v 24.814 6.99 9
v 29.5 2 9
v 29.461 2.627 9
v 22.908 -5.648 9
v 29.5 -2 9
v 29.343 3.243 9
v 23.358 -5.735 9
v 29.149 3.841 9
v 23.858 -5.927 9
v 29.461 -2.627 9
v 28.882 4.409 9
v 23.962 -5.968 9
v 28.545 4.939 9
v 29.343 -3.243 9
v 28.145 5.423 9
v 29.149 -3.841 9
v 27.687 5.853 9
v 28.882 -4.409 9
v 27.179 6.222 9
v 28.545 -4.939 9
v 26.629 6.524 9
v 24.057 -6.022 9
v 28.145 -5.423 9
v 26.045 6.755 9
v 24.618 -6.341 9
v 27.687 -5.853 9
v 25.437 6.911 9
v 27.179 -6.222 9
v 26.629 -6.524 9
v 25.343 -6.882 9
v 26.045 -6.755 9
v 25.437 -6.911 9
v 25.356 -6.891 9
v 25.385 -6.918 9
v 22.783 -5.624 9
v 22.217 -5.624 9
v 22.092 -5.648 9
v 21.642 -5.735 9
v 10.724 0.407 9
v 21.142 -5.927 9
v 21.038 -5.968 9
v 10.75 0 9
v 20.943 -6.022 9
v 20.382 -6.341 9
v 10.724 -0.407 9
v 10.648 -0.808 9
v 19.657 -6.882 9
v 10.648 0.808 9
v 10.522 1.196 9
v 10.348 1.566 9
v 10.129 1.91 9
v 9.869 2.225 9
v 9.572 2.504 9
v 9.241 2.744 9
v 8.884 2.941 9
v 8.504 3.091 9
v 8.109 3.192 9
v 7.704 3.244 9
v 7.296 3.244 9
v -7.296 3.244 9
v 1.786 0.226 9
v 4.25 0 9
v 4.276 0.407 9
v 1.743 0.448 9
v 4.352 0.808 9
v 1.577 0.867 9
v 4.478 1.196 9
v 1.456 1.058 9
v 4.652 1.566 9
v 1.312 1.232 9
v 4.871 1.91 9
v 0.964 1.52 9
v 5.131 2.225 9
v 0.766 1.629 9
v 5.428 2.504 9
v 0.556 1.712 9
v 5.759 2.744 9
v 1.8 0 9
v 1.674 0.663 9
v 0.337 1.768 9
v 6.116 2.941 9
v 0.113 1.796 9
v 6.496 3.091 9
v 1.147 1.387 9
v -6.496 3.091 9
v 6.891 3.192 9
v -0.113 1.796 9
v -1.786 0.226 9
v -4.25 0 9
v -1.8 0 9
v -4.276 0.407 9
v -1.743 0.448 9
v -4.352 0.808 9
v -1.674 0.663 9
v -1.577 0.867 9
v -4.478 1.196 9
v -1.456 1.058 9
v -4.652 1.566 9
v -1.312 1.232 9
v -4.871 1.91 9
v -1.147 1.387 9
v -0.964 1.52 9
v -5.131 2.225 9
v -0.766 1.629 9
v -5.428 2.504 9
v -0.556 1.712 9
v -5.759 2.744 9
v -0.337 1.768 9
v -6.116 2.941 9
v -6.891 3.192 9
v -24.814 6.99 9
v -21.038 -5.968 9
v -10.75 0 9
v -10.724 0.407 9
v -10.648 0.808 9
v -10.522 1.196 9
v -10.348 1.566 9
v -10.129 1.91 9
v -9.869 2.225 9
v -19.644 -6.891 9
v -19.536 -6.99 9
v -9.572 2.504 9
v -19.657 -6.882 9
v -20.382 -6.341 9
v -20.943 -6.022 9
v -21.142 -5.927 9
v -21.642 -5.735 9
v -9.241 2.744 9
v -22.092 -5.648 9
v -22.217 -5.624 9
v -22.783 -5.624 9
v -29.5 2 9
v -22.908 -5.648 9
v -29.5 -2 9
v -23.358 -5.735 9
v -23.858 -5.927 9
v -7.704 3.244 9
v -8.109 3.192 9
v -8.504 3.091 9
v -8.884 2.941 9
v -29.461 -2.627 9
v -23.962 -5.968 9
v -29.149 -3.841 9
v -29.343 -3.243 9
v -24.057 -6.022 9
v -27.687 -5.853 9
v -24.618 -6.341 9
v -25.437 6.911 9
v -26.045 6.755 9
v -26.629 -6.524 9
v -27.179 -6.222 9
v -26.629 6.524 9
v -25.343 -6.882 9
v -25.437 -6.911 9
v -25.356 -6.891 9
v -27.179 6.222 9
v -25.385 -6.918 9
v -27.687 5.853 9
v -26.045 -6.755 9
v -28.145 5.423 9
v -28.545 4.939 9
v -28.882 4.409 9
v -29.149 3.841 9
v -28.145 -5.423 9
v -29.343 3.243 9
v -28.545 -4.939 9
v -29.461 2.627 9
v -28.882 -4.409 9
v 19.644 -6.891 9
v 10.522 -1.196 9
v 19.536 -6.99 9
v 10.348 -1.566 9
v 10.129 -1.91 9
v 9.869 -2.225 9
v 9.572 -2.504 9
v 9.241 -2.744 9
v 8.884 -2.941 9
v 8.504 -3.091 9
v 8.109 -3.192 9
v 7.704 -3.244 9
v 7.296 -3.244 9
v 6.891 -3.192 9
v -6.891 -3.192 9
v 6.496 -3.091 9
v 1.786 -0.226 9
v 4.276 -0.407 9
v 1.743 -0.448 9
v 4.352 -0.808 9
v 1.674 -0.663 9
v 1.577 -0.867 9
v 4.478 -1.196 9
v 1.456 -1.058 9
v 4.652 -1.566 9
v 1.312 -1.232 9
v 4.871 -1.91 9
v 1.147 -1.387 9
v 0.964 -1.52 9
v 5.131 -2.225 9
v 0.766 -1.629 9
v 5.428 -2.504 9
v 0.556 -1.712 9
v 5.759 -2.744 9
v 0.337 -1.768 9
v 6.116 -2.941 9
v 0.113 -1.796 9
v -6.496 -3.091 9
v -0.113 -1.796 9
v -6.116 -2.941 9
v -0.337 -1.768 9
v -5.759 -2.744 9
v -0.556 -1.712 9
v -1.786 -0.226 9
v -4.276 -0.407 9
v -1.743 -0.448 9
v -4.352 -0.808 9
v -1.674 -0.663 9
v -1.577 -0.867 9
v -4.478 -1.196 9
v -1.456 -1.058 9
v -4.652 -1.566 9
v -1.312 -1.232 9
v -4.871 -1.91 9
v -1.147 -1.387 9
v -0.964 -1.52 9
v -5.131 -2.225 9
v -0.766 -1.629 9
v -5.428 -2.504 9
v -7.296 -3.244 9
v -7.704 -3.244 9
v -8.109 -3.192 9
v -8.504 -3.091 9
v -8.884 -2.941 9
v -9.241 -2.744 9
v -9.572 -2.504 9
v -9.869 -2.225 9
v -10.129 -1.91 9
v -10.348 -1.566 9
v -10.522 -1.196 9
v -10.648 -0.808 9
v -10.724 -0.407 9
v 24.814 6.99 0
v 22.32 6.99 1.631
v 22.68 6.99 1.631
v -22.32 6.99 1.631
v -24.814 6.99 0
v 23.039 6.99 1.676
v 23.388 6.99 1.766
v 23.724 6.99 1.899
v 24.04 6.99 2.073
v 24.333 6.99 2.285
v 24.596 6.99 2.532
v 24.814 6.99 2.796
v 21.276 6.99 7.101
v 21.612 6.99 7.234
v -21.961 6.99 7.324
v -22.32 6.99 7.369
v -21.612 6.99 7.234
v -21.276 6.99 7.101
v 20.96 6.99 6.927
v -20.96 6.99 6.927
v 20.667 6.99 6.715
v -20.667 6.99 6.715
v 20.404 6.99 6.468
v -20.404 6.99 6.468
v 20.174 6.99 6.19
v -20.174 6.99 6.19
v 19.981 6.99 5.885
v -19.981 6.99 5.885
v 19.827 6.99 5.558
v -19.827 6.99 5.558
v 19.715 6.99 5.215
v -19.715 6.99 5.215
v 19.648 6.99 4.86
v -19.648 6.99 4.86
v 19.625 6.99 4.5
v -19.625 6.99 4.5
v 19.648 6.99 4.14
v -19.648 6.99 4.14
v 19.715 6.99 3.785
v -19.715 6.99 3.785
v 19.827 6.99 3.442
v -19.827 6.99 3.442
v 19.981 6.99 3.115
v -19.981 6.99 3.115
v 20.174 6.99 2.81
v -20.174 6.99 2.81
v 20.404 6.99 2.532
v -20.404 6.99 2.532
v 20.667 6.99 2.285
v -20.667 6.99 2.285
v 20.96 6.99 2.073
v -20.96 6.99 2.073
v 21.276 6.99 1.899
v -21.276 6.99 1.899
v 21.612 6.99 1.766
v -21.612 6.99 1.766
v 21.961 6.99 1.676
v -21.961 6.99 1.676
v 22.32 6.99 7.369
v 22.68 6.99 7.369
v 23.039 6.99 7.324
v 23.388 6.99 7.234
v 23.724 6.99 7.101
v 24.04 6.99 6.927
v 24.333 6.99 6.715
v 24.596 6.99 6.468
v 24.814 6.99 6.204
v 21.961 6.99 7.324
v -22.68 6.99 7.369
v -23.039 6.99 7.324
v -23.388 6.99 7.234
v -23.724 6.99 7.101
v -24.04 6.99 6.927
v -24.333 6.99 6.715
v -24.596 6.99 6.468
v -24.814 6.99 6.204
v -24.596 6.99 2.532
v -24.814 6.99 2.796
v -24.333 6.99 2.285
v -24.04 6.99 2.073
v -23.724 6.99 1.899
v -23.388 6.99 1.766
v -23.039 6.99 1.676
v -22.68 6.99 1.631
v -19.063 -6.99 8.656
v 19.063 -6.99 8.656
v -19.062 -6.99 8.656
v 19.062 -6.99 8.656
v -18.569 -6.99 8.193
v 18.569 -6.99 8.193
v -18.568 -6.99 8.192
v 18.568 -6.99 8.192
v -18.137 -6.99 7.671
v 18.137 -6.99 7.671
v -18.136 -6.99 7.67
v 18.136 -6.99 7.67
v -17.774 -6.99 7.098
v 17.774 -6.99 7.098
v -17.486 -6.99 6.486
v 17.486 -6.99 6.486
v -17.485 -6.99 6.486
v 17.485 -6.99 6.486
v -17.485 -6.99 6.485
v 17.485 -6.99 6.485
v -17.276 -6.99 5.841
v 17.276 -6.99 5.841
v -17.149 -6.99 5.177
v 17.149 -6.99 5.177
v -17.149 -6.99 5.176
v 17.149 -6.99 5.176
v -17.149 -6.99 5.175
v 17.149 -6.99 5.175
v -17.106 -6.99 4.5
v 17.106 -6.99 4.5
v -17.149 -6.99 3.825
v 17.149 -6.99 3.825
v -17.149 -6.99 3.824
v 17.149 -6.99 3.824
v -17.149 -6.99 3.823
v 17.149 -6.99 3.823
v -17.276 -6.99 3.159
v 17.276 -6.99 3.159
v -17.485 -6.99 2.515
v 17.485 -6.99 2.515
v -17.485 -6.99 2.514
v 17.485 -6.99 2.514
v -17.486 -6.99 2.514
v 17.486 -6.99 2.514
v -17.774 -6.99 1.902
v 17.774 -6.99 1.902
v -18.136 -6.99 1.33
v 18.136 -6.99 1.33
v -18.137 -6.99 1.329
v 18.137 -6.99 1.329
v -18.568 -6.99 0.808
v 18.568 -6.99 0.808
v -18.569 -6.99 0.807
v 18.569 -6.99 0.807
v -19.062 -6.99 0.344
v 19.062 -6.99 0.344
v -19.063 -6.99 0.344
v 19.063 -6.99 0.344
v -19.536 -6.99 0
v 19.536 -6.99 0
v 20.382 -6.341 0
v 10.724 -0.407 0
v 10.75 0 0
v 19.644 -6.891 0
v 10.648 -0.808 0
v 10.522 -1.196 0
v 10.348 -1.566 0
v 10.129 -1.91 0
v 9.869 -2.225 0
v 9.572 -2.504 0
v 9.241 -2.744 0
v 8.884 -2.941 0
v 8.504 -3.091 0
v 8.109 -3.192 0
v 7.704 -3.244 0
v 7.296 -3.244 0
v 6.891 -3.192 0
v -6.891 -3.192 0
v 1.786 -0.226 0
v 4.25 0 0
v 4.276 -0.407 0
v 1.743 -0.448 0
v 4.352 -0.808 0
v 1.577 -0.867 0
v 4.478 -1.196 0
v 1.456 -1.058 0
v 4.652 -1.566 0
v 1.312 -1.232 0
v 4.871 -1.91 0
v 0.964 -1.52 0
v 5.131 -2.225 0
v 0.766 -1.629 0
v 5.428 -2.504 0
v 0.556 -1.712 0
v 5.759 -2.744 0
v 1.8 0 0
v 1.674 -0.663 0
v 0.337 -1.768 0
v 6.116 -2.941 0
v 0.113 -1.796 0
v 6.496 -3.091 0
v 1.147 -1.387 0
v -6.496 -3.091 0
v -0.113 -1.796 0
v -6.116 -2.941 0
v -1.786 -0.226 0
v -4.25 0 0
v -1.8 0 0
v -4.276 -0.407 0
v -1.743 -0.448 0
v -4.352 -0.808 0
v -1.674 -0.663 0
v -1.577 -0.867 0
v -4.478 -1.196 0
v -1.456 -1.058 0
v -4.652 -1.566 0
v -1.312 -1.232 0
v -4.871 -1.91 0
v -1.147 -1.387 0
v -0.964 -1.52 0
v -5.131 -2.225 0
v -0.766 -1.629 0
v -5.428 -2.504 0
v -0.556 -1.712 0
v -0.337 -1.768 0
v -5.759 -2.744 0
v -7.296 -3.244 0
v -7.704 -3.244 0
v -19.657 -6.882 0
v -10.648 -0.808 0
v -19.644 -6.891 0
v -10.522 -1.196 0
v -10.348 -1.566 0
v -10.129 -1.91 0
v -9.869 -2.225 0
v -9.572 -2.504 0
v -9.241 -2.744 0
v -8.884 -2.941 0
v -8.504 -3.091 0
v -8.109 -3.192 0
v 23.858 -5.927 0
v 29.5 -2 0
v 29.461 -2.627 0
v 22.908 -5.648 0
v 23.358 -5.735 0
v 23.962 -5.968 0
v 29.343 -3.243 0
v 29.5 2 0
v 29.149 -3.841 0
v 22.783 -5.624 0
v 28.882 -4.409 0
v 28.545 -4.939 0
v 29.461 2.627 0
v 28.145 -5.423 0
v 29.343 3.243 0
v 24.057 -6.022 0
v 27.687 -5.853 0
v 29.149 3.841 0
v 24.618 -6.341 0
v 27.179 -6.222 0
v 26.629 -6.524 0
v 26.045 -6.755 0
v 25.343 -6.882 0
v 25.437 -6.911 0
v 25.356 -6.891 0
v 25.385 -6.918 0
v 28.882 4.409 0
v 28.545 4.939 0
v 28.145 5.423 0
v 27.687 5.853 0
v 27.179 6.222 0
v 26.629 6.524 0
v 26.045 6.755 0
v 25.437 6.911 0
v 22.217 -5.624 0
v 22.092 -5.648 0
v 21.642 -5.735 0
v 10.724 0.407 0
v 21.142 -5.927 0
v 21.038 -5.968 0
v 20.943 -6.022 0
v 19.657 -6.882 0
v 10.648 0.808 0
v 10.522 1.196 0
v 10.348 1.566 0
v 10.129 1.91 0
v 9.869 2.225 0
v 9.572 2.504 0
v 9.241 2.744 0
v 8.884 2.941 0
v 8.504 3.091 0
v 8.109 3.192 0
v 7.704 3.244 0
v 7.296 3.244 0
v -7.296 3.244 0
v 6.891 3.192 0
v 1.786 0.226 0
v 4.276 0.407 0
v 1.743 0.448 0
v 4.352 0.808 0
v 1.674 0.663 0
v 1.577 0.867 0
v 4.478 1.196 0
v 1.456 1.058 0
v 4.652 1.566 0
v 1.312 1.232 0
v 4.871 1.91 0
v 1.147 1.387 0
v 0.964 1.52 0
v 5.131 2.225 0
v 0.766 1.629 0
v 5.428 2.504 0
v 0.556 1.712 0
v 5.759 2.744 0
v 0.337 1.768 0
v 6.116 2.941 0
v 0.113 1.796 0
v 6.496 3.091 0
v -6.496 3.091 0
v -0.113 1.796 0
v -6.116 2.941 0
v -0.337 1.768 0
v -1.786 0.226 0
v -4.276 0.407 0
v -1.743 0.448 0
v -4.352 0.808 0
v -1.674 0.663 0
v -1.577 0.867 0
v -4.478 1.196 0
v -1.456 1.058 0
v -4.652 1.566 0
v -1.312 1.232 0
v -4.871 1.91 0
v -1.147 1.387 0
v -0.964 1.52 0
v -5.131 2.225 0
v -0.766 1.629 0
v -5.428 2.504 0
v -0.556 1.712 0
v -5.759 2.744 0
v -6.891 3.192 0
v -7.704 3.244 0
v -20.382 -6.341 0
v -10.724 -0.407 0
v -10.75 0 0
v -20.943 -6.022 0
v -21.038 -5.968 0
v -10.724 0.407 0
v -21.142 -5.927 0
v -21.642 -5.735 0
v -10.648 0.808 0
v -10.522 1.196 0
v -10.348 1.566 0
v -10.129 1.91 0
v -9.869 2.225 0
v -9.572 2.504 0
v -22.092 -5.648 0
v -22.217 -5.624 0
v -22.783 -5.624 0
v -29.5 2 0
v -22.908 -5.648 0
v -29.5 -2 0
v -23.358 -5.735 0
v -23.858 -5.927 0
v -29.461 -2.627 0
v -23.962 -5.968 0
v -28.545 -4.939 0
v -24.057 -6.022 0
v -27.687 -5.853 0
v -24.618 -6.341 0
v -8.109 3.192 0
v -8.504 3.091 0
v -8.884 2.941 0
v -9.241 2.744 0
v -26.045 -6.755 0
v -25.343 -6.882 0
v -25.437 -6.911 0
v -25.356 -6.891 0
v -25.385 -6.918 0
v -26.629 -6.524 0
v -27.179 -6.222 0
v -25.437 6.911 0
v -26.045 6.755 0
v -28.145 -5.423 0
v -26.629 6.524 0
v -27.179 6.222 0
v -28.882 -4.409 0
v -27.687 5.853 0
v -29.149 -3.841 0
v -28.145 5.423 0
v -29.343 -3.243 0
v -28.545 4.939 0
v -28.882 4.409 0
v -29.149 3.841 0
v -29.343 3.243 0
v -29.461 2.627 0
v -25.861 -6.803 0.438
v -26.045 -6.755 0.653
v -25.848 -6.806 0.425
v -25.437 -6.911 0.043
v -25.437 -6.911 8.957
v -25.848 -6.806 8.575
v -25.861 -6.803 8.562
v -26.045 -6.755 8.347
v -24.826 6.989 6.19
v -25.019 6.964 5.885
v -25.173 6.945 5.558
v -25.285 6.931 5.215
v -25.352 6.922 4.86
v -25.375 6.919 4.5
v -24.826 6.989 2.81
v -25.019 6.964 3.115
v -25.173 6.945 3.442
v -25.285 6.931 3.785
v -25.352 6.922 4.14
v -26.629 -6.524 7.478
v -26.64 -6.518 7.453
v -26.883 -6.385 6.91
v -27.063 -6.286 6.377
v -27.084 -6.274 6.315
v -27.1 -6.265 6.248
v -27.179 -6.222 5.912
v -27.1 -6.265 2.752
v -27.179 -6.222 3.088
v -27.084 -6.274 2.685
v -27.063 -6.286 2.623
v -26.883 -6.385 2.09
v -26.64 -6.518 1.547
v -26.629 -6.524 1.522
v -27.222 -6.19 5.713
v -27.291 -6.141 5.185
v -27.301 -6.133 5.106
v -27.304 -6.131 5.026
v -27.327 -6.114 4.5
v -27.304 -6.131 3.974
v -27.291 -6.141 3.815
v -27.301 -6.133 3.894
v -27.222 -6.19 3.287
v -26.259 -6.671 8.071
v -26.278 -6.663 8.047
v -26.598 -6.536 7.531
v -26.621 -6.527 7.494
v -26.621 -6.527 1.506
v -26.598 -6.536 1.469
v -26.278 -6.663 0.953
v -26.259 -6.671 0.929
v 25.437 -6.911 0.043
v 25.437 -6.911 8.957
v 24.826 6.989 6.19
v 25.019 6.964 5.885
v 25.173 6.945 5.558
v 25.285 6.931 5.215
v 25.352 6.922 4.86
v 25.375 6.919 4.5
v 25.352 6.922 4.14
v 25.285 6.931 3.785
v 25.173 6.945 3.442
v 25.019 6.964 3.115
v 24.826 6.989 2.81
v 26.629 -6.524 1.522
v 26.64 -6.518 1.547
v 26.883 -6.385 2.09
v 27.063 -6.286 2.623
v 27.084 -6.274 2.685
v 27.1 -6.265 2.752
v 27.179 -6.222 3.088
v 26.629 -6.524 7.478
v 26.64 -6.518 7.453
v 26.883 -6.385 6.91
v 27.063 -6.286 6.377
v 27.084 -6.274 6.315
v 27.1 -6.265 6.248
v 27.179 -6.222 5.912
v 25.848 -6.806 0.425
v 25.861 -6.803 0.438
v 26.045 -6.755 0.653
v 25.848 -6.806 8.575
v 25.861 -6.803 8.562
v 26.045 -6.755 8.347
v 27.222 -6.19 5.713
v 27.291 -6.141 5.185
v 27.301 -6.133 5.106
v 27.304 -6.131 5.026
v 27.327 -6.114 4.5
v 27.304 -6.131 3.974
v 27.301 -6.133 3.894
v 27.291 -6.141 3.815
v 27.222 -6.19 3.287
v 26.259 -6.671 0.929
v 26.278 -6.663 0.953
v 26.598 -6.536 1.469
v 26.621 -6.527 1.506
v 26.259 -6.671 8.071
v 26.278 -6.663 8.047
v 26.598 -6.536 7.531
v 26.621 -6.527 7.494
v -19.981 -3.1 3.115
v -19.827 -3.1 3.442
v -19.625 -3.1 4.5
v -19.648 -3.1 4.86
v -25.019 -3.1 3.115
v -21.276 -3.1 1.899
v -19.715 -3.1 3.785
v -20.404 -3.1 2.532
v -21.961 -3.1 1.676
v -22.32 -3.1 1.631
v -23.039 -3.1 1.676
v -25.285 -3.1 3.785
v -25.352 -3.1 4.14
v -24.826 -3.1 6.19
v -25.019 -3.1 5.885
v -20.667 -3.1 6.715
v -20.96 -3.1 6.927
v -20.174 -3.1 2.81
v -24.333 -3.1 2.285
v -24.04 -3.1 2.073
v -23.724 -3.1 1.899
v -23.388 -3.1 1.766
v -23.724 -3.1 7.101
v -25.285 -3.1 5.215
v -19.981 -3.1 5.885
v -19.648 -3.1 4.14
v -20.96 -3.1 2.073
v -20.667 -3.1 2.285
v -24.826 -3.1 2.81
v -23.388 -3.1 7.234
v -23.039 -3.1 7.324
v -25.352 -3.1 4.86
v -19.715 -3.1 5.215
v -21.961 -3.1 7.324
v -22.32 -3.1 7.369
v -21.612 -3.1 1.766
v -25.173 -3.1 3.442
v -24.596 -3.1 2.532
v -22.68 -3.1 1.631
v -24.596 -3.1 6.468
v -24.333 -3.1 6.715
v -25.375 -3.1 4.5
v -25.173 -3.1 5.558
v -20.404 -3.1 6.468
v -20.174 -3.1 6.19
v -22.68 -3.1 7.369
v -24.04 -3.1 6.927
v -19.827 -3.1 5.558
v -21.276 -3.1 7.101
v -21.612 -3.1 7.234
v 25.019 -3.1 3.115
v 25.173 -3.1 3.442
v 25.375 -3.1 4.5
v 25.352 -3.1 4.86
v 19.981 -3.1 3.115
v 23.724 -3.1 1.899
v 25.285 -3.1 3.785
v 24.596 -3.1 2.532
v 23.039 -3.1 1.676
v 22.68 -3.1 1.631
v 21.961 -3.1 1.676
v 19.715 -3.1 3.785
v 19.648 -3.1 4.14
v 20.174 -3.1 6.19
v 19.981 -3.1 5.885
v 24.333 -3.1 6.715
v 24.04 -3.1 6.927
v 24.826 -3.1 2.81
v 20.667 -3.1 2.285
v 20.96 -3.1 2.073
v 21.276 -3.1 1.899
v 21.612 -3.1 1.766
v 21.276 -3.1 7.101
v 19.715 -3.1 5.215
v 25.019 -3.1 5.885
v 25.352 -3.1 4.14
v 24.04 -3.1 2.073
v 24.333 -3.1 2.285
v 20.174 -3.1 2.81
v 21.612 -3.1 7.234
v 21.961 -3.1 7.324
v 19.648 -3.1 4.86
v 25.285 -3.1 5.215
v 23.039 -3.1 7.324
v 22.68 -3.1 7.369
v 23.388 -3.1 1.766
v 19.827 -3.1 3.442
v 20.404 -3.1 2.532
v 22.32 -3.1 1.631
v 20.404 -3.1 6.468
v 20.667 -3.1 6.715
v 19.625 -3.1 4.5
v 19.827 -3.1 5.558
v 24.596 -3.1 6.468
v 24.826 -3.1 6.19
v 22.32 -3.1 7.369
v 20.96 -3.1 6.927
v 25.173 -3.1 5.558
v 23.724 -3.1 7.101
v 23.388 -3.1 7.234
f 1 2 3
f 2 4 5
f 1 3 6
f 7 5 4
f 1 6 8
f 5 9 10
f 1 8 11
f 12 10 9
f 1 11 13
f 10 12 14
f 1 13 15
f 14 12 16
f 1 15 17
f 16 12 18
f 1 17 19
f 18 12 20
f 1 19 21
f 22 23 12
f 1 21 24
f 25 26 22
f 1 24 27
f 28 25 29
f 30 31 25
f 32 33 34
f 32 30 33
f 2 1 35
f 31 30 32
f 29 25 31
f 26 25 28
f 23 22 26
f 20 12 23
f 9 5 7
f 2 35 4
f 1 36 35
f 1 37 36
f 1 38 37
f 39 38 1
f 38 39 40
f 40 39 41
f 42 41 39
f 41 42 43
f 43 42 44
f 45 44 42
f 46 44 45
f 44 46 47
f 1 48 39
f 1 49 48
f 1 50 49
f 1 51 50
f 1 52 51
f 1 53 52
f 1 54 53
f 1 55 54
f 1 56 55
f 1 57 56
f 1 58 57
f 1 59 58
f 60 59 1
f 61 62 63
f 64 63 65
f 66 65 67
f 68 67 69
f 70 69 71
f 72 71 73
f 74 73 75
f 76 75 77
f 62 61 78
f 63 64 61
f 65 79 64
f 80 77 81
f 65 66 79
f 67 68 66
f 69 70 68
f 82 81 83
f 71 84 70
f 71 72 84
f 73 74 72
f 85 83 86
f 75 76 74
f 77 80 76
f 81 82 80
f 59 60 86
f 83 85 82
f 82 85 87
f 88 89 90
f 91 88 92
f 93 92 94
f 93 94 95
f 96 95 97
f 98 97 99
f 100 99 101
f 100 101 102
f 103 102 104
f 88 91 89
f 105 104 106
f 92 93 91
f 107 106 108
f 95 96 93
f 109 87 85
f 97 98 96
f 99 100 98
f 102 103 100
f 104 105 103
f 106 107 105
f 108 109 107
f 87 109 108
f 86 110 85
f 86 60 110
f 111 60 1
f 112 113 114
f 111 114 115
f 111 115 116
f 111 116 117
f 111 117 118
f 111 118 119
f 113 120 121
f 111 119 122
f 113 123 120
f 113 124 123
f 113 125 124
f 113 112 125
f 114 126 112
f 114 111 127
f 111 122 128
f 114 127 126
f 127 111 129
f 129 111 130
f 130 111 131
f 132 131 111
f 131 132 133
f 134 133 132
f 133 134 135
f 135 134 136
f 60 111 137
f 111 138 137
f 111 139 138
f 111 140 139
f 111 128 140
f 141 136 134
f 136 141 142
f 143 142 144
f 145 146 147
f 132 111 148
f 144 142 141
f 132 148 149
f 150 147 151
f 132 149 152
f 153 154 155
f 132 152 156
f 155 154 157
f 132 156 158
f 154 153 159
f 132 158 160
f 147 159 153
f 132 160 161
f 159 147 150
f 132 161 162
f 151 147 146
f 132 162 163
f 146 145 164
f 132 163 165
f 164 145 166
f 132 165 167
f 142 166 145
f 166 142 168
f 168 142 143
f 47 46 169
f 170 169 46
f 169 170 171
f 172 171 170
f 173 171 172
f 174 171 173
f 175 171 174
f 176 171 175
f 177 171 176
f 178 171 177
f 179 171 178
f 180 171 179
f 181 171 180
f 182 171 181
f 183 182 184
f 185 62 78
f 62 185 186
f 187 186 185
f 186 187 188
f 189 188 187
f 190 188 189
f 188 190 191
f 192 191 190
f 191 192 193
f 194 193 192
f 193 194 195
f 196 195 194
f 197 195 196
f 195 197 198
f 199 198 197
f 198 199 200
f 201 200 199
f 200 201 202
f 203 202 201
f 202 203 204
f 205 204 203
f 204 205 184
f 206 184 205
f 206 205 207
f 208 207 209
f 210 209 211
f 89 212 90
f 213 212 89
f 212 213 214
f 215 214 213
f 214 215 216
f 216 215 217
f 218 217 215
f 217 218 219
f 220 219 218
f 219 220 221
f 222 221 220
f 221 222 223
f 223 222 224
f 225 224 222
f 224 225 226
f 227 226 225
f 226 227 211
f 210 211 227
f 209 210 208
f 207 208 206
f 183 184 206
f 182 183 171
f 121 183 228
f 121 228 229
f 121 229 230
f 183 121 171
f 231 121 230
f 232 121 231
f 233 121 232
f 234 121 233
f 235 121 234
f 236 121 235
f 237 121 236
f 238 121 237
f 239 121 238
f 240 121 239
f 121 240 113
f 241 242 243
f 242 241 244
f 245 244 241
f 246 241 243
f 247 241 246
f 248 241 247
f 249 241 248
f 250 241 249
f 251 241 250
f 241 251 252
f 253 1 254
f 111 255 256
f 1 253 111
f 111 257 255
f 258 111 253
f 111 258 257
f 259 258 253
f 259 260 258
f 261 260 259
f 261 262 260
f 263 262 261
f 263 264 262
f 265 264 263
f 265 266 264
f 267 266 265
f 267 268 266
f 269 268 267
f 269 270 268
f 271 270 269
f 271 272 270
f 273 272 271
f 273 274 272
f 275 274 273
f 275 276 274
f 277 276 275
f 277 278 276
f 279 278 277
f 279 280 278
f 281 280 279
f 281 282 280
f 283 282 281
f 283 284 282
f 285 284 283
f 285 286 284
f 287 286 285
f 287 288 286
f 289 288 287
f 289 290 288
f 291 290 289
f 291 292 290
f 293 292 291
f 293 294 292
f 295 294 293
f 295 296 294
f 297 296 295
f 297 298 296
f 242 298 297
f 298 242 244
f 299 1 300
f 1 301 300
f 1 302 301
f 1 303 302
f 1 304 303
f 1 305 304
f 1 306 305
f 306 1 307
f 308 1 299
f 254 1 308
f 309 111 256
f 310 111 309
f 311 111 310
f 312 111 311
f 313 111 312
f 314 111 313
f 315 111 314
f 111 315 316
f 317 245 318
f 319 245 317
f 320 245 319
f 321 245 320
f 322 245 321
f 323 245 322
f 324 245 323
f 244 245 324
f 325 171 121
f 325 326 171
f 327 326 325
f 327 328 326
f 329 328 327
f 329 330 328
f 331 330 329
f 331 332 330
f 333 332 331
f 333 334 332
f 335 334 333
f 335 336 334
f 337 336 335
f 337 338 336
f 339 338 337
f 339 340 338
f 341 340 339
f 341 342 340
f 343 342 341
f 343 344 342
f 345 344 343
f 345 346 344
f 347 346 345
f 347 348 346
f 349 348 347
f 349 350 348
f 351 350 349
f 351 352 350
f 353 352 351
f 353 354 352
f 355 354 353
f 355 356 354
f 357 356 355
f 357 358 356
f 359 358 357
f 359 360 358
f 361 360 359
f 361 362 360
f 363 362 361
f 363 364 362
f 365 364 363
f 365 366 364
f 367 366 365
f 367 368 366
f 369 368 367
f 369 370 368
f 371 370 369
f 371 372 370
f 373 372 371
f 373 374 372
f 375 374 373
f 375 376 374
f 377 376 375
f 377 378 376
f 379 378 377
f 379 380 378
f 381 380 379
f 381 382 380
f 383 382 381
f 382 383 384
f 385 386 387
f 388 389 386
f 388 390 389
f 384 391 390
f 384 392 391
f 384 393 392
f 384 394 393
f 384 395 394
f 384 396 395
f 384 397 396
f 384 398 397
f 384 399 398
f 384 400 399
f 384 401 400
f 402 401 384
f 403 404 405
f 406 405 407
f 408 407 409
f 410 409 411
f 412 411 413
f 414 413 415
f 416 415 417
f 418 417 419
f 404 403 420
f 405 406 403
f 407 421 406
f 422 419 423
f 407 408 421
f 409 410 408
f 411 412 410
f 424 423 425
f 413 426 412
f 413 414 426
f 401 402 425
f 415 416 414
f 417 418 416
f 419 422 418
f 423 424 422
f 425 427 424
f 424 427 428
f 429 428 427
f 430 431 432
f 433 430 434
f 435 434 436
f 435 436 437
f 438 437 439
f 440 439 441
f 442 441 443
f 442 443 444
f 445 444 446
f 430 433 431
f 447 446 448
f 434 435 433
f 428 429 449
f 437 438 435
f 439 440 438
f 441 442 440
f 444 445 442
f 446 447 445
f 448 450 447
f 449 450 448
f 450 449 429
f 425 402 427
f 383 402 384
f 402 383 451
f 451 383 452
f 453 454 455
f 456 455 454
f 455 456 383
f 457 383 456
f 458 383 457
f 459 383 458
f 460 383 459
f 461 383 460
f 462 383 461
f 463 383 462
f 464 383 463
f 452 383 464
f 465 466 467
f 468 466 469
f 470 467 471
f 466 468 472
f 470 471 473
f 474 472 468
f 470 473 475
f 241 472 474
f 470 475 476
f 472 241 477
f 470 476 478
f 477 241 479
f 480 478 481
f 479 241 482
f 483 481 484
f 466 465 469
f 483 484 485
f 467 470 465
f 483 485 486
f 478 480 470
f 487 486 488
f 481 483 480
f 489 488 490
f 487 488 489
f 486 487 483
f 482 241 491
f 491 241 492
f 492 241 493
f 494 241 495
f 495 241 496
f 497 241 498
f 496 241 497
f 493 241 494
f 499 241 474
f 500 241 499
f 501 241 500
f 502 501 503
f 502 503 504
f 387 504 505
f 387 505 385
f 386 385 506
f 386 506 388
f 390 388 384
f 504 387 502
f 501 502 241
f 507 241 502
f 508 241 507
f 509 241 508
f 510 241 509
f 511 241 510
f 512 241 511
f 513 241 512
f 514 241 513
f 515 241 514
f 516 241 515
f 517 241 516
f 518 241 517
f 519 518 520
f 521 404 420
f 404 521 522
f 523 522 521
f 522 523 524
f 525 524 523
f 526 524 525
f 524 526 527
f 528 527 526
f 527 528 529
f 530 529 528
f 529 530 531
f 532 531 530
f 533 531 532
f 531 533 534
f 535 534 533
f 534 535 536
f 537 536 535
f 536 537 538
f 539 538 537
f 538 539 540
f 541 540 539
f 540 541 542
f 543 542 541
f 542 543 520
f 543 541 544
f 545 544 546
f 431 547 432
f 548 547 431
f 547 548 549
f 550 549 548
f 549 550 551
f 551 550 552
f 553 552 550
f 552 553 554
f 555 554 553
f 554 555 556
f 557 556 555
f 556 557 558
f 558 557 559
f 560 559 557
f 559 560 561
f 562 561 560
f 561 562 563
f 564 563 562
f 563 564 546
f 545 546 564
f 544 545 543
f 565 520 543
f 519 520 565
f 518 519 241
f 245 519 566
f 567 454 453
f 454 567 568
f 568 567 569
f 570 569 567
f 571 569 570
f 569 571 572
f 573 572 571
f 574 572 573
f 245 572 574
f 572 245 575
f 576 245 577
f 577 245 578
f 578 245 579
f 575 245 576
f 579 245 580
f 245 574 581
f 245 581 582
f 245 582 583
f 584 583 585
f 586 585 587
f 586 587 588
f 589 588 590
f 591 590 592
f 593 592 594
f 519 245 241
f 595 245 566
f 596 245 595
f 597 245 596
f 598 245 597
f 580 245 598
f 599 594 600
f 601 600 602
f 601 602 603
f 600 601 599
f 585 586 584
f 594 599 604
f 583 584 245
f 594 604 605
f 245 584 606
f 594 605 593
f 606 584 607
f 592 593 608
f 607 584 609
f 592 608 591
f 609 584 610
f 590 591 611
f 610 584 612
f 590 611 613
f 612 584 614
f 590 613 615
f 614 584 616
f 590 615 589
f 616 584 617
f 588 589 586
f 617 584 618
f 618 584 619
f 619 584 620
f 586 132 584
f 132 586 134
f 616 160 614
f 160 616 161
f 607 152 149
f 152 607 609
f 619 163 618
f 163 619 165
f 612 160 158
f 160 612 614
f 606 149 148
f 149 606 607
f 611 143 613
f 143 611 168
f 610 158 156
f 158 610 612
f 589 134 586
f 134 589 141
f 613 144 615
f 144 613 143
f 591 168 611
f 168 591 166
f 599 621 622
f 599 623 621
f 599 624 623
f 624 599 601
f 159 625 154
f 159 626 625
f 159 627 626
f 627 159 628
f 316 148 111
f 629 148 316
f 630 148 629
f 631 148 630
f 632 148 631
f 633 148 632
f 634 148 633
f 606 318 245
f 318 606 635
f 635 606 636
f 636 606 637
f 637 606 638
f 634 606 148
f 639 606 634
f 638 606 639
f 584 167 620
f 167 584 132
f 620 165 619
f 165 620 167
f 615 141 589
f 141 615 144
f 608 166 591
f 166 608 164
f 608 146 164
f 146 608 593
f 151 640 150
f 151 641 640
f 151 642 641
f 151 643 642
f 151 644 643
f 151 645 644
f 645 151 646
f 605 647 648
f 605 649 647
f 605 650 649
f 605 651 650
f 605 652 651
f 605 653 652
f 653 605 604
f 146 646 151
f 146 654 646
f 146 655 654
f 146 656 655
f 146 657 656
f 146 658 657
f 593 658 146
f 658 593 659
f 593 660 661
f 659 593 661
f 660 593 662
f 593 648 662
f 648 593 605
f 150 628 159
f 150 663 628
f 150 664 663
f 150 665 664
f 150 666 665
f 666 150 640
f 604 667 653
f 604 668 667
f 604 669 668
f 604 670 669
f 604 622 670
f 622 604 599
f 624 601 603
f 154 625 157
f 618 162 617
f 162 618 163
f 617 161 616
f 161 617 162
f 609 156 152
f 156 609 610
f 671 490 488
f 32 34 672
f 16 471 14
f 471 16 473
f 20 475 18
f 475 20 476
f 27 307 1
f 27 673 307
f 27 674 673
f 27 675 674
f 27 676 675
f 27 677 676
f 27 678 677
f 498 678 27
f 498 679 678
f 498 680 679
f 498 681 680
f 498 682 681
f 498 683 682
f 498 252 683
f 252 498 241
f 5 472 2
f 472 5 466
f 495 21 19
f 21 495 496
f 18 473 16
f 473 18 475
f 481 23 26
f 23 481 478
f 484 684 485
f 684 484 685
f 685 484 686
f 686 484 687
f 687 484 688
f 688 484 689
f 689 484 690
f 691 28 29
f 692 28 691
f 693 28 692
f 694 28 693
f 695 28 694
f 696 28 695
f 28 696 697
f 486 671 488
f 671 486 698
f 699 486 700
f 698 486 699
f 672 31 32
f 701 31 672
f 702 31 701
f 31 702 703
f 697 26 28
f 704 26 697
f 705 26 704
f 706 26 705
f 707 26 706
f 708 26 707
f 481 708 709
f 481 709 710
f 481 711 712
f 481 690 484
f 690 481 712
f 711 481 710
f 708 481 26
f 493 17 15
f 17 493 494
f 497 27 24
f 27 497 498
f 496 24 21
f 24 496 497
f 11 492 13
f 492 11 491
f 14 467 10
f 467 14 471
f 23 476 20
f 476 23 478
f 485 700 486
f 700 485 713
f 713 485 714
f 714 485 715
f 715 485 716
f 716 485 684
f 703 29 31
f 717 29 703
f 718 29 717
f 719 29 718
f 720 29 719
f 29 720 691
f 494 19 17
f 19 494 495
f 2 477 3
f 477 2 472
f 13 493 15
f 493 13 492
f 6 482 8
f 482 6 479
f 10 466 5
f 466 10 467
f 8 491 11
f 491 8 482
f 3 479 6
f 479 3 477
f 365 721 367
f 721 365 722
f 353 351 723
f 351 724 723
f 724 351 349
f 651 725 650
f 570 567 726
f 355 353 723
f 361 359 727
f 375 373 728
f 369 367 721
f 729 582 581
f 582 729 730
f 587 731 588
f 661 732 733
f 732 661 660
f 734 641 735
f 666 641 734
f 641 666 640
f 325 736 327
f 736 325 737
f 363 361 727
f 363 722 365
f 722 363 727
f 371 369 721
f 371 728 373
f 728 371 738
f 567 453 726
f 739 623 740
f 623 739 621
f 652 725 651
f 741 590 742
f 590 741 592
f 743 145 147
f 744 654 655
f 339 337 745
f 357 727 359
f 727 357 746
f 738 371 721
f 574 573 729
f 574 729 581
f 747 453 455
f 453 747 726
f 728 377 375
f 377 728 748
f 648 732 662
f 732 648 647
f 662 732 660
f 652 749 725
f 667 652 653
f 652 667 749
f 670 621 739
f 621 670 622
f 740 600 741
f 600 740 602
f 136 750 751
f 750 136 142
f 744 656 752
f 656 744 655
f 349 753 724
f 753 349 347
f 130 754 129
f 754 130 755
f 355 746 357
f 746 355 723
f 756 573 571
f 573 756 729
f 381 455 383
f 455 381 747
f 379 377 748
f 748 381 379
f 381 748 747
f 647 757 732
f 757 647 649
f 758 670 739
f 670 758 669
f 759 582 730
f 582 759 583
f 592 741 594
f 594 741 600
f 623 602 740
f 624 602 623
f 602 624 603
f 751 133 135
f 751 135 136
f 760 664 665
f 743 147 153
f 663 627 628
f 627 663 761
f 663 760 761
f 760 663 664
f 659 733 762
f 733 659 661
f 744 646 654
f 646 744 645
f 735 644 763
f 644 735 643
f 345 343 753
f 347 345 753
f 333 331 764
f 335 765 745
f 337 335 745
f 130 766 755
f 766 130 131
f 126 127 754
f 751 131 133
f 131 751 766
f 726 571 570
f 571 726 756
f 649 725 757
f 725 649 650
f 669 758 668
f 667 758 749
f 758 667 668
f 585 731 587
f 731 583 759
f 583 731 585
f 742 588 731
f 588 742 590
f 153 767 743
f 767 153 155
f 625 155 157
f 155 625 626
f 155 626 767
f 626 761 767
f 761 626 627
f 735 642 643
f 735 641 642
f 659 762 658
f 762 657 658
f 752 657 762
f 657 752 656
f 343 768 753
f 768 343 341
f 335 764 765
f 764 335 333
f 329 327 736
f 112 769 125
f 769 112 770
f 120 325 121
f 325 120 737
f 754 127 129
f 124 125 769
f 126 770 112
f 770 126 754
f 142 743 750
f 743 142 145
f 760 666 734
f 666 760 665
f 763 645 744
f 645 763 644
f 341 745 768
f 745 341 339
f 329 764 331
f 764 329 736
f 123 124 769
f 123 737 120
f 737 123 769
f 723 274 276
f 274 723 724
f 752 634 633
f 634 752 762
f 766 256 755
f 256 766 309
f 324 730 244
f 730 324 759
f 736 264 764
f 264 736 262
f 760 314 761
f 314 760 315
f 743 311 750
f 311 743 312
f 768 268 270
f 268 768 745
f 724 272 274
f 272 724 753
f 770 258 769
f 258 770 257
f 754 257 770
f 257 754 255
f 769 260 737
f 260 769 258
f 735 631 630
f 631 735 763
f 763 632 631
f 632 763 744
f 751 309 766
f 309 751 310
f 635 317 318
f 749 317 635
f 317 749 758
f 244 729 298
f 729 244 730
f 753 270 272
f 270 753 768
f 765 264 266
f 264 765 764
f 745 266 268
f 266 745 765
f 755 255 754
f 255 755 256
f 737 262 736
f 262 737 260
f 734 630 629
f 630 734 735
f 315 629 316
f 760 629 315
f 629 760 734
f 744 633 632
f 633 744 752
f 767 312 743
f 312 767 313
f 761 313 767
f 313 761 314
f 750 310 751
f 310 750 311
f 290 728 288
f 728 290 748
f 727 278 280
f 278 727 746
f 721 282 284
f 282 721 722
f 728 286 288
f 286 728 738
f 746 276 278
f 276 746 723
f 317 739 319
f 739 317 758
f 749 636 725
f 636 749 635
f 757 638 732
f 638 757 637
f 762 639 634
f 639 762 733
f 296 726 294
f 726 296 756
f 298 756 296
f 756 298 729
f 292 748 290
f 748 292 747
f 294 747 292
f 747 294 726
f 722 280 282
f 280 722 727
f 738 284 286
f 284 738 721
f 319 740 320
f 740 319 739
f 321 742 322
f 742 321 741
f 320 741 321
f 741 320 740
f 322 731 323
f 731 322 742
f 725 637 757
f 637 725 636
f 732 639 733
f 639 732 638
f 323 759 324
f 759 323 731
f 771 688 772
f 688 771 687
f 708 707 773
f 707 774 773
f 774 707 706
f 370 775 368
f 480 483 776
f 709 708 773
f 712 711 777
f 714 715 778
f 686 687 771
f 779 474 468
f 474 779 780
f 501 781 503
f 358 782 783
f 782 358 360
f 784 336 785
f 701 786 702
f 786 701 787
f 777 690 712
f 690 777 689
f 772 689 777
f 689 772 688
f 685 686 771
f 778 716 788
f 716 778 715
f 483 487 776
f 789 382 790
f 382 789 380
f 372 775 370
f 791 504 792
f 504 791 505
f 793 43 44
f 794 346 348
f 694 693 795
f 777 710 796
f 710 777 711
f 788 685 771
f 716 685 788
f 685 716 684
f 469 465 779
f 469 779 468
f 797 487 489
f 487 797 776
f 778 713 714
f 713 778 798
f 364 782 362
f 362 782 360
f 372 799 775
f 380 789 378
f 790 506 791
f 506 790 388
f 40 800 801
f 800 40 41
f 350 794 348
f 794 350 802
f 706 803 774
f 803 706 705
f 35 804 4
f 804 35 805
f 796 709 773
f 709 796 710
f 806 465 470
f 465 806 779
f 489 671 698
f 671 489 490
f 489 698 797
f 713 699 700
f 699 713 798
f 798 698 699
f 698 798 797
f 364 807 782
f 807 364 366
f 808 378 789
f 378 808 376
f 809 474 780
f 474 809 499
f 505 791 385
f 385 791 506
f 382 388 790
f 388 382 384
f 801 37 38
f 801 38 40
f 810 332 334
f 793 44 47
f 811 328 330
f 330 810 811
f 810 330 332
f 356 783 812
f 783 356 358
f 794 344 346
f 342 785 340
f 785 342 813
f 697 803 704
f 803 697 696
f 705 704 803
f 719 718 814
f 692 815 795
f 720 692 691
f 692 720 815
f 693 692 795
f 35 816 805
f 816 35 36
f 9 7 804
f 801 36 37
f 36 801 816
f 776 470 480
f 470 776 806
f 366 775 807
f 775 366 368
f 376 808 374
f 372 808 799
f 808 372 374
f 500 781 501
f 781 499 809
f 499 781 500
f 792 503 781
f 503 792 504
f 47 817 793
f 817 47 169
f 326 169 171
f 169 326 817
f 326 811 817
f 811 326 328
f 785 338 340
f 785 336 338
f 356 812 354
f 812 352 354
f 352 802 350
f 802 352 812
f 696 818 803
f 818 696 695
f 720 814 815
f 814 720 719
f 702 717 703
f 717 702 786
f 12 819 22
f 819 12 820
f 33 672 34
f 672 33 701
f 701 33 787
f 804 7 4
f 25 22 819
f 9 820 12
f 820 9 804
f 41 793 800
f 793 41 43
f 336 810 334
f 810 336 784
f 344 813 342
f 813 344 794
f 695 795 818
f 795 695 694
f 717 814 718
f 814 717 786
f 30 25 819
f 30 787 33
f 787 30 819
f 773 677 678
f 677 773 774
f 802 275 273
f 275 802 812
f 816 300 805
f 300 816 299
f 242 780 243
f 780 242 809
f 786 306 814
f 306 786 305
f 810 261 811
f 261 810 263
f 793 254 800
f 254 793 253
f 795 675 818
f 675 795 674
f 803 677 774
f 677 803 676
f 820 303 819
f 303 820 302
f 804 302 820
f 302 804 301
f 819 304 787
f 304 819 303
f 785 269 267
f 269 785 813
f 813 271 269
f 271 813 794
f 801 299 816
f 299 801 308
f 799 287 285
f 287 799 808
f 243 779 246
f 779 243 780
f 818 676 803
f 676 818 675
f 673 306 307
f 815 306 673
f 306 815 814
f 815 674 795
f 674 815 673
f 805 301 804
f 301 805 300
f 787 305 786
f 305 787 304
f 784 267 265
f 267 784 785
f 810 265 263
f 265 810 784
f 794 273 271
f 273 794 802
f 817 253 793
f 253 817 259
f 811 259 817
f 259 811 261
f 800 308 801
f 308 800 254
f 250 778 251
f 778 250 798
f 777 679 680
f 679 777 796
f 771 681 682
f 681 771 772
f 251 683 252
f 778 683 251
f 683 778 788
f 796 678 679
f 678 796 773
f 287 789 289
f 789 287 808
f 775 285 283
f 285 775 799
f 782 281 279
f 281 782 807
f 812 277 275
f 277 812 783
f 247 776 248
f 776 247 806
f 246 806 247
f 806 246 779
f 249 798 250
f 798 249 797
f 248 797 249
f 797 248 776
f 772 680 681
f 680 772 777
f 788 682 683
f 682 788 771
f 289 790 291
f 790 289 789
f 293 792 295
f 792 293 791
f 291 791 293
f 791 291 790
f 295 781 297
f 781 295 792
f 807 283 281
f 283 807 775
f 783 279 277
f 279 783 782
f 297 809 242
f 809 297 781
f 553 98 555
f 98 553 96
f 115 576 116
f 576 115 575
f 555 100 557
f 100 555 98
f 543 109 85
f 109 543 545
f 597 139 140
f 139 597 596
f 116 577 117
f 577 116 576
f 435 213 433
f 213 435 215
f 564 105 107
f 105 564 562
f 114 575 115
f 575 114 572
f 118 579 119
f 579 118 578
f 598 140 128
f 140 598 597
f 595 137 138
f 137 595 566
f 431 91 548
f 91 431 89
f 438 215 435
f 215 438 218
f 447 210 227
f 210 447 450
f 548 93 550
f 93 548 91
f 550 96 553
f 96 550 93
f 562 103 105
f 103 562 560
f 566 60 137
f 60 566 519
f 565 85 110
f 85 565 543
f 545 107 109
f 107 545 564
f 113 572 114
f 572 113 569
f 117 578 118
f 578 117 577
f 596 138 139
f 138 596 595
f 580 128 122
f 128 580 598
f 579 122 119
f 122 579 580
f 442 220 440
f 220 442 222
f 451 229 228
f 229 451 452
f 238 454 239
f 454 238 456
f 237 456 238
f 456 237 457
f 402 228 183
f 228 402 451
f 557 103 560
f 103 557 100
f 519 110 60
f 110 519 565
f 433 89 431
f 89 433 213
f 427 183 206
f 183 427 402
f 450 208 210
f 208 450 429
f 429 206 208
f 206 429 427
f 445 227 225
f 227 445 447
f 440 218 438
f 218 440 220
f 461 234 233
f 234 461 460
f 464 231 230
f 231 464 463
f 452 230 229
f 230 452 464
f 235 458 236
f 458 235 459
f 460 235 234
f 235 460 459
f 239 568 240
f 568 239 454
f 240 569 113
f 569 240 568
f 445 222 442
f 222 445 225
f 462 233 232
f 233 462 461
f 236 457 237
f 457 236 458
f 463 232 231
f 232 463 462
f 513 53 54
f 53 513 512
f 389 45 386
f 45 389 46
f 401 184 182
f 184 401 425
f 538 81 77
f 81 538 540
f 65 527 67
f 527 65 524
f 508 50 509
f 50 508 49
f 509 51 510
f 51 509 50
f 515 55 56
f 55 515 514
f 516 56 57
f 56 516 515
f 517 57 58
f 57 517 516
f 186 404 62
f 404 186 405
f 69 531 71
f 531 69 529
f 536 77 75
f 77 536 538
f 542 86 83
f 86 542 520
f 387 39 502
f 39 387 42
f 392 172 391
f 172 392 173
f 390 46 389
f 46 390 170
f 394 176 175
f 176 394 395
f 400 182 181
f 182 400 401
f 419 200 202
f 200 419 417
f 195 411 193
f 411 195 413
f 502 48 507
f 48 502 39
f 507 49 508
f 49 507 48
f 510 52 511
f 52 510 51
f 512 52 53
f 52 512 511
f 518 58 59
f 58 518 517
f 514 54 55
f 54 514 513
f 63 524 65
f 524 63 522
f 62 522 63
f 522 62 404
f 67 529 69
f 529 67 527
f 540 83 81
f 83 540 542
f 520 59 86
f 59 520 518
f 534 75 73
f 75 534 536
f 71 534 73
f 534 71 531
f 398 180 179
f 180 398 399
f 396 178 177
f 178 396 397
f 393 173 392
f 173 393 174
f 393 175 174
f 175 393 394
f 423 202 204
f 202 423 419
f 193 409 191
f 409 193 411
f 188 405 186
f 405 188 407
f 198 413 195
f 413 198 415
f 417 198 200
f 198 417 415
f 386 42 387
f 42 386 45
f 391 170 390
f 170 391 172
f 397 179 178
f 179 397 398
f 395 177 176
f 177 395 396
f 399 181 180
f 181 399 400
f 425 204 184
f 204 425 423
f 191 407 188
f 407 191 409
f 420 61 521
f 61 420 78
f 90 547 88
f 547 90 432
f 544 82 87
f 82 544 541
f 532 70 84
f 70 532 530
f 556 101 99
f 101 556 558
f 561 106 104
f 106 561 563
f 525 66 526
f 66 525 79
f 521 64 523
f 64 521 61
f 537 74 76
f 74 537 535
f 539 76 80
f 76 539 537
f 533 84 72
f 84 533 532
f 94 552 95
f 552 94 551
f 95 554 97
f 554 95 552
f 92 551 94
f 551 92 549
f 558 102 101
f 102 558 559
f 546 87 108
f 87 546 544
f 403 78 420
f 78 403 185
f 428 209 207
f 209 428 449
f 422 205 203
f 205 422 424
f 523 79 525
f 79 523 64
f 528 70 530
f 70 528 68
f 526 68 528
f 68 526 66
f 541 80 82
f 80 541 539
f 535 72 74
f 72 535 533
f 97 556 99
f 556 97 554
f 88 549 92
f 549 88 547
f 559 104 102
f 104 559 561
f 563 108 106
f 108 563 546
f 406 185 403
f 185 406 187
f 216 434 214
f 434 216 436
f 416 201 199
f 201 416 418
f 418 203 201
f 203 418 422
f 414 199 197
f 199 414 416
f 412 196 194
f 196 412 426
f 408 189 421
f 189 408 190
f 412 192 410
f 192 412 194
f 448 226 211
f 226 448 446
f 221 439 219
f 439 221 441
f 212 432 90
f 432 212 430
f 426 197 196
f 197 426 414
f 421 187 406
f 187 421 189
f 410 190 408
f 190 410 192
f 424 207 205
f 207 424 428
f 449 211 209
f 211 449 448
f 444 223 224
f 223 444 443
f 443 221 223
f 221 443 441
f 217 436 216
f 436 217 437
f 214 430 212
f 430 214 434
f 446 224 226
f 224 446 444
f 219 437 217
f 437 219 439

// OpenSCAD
$fn = 50;


difference() {
	union() {
		hull() {
			translate(v = [-9.5000000000, 2.0000000000, 0]) {
				cylinder(h = 9, r = 5);
			}
			translate(v = [9.5000000000, 2.0000000000, 0]) {
				cylinder(h = 9, r = 5);
			}
			translate(v = [-9.5000000000, -2.0000000000, 0]) {
				cylinder(h = 9, r = 5);
			}
			translate(v = [9.5000000000, -2.0000000000, 0]) {
				cylinder(h = 9, r = 5);
			}
		}
		translate(v = [-15.0000000000, 0.0000000000, 0]) {
			hull() {
				translate(v = [-9.5000000000, 2.0000000000, 0]) {
					cylinder(h = 9, r = 5);
				}
				translate(v = [9.5000000000, 2.0000000000, 0]) {
					cylinder(h = 9, r = 5);
				}
				translate(v = [-9.5000000000, -2.0000000000, 0]) {
					cylinder(h = 9, r = 5);
				}
				translate(v = [9.5000000000, -2.0000000000, 0]) {
					cylinder(h = 9, r = 5);
				}
			}
		}
		translate(v = [15.0000000000, 0.0000000000, 0]) {
			hull() {
				translate(v = [-9.5000000000, 2.0000000000, 0]) {
					cylinder(h = 9, r = 5);
				}
				translate(v = [9.5000000000, 2.0000000000, 0]) {
					cylinder(h = 9, r = 5);
				}
				translate(v = [-9.5000000000, -2.0000000000, 0]) {
					cylinder(h = 9, r = 5);
				}
				translate(v = [9.5000000000, -2.0000000000, 0]) {
					cylinder(h = 9, r = 5);
				}
			}
		}
	}
	union() {
		translate(v = [-22.5000000000, -7.0000000000, 4.5000000000]) {
			rotate(a = [90, 0, 0]) {
				difference() {
					union() {
						#translate(v = [0, 0, -14.0000000000]) {
							cylinder(h = 14, r = 2.6000000000);
						}
						#translate(v = [0, 0, -3.9000000000]) {
							cylinder(h = 3.9000000000, r1 = 2.8750000000, r2 = 5.4000000000);
						}
						#translate(v = [0, 0, -14.0000000000]) {
							cylinder(h = 14, r = 2.8750000000);
						}
						#translate(v = [0, 0, -14.0000000000]) {
							cylinder(h = 14, r = 2.6000000000);
						}
					}
					union();
				}
			}
		}
		translate(v = [22.5000000000, -7.0000000000, 4.5000000000]) {
			rotate(a = [90, 0, 0]) {
				difference() {
					union() {
						#translate(v = [0, 0, -14.0000000000]) {
							cylinder(h = 14, r = 2.6000000000);
						}
						#translate(v = [0, 0, -3.9000000000]) {
							cylinder(h = 3.9000000000, r1 = 2.8750000000, r2 = 5.4000000000);
						}
						#translate(v = [0, 0, -14.0000000000]) {
							cylinder(h = 14, r = 2.8750000000);
						}
						#translate(v = [0, 0, -14.0000000000]) {
							cylinder(h = 14, r = 2.6000000000);
						}
					}
					union();
				}
			}
		}
		translate(v = [-7.5000000000, 0.0000000000, 0]) {
			translate(v = [0, 0, -100]) {
				cylinder(h = 200, r = 3.2500000000);
			}
		}
		translate(v = [7.5000000000, 0.0000000000, 0]) {
			translate(v = [0, 0, -100]) {
				cylinder(h = 200, r = 3.2500000000);
			}
		}
		translate(v = [-7.5000000000, 0.0000000000, 0]) {
			translate(v = [0, 0, -100]) {
				cylinder(h = 200, r = 1.8000000000);
			}
		}
		translate(v = [0, 0, -100]) {
			cylinder(h = 200, r = 1.8000000000);
		}
		translate(v = [7.5000000000, 0.0000000000, 0]) {
			translate(v = [0, 0, -100]) {
				cylinder(h = 200, r = 1.8000000000);
			}
		}
	}
}
